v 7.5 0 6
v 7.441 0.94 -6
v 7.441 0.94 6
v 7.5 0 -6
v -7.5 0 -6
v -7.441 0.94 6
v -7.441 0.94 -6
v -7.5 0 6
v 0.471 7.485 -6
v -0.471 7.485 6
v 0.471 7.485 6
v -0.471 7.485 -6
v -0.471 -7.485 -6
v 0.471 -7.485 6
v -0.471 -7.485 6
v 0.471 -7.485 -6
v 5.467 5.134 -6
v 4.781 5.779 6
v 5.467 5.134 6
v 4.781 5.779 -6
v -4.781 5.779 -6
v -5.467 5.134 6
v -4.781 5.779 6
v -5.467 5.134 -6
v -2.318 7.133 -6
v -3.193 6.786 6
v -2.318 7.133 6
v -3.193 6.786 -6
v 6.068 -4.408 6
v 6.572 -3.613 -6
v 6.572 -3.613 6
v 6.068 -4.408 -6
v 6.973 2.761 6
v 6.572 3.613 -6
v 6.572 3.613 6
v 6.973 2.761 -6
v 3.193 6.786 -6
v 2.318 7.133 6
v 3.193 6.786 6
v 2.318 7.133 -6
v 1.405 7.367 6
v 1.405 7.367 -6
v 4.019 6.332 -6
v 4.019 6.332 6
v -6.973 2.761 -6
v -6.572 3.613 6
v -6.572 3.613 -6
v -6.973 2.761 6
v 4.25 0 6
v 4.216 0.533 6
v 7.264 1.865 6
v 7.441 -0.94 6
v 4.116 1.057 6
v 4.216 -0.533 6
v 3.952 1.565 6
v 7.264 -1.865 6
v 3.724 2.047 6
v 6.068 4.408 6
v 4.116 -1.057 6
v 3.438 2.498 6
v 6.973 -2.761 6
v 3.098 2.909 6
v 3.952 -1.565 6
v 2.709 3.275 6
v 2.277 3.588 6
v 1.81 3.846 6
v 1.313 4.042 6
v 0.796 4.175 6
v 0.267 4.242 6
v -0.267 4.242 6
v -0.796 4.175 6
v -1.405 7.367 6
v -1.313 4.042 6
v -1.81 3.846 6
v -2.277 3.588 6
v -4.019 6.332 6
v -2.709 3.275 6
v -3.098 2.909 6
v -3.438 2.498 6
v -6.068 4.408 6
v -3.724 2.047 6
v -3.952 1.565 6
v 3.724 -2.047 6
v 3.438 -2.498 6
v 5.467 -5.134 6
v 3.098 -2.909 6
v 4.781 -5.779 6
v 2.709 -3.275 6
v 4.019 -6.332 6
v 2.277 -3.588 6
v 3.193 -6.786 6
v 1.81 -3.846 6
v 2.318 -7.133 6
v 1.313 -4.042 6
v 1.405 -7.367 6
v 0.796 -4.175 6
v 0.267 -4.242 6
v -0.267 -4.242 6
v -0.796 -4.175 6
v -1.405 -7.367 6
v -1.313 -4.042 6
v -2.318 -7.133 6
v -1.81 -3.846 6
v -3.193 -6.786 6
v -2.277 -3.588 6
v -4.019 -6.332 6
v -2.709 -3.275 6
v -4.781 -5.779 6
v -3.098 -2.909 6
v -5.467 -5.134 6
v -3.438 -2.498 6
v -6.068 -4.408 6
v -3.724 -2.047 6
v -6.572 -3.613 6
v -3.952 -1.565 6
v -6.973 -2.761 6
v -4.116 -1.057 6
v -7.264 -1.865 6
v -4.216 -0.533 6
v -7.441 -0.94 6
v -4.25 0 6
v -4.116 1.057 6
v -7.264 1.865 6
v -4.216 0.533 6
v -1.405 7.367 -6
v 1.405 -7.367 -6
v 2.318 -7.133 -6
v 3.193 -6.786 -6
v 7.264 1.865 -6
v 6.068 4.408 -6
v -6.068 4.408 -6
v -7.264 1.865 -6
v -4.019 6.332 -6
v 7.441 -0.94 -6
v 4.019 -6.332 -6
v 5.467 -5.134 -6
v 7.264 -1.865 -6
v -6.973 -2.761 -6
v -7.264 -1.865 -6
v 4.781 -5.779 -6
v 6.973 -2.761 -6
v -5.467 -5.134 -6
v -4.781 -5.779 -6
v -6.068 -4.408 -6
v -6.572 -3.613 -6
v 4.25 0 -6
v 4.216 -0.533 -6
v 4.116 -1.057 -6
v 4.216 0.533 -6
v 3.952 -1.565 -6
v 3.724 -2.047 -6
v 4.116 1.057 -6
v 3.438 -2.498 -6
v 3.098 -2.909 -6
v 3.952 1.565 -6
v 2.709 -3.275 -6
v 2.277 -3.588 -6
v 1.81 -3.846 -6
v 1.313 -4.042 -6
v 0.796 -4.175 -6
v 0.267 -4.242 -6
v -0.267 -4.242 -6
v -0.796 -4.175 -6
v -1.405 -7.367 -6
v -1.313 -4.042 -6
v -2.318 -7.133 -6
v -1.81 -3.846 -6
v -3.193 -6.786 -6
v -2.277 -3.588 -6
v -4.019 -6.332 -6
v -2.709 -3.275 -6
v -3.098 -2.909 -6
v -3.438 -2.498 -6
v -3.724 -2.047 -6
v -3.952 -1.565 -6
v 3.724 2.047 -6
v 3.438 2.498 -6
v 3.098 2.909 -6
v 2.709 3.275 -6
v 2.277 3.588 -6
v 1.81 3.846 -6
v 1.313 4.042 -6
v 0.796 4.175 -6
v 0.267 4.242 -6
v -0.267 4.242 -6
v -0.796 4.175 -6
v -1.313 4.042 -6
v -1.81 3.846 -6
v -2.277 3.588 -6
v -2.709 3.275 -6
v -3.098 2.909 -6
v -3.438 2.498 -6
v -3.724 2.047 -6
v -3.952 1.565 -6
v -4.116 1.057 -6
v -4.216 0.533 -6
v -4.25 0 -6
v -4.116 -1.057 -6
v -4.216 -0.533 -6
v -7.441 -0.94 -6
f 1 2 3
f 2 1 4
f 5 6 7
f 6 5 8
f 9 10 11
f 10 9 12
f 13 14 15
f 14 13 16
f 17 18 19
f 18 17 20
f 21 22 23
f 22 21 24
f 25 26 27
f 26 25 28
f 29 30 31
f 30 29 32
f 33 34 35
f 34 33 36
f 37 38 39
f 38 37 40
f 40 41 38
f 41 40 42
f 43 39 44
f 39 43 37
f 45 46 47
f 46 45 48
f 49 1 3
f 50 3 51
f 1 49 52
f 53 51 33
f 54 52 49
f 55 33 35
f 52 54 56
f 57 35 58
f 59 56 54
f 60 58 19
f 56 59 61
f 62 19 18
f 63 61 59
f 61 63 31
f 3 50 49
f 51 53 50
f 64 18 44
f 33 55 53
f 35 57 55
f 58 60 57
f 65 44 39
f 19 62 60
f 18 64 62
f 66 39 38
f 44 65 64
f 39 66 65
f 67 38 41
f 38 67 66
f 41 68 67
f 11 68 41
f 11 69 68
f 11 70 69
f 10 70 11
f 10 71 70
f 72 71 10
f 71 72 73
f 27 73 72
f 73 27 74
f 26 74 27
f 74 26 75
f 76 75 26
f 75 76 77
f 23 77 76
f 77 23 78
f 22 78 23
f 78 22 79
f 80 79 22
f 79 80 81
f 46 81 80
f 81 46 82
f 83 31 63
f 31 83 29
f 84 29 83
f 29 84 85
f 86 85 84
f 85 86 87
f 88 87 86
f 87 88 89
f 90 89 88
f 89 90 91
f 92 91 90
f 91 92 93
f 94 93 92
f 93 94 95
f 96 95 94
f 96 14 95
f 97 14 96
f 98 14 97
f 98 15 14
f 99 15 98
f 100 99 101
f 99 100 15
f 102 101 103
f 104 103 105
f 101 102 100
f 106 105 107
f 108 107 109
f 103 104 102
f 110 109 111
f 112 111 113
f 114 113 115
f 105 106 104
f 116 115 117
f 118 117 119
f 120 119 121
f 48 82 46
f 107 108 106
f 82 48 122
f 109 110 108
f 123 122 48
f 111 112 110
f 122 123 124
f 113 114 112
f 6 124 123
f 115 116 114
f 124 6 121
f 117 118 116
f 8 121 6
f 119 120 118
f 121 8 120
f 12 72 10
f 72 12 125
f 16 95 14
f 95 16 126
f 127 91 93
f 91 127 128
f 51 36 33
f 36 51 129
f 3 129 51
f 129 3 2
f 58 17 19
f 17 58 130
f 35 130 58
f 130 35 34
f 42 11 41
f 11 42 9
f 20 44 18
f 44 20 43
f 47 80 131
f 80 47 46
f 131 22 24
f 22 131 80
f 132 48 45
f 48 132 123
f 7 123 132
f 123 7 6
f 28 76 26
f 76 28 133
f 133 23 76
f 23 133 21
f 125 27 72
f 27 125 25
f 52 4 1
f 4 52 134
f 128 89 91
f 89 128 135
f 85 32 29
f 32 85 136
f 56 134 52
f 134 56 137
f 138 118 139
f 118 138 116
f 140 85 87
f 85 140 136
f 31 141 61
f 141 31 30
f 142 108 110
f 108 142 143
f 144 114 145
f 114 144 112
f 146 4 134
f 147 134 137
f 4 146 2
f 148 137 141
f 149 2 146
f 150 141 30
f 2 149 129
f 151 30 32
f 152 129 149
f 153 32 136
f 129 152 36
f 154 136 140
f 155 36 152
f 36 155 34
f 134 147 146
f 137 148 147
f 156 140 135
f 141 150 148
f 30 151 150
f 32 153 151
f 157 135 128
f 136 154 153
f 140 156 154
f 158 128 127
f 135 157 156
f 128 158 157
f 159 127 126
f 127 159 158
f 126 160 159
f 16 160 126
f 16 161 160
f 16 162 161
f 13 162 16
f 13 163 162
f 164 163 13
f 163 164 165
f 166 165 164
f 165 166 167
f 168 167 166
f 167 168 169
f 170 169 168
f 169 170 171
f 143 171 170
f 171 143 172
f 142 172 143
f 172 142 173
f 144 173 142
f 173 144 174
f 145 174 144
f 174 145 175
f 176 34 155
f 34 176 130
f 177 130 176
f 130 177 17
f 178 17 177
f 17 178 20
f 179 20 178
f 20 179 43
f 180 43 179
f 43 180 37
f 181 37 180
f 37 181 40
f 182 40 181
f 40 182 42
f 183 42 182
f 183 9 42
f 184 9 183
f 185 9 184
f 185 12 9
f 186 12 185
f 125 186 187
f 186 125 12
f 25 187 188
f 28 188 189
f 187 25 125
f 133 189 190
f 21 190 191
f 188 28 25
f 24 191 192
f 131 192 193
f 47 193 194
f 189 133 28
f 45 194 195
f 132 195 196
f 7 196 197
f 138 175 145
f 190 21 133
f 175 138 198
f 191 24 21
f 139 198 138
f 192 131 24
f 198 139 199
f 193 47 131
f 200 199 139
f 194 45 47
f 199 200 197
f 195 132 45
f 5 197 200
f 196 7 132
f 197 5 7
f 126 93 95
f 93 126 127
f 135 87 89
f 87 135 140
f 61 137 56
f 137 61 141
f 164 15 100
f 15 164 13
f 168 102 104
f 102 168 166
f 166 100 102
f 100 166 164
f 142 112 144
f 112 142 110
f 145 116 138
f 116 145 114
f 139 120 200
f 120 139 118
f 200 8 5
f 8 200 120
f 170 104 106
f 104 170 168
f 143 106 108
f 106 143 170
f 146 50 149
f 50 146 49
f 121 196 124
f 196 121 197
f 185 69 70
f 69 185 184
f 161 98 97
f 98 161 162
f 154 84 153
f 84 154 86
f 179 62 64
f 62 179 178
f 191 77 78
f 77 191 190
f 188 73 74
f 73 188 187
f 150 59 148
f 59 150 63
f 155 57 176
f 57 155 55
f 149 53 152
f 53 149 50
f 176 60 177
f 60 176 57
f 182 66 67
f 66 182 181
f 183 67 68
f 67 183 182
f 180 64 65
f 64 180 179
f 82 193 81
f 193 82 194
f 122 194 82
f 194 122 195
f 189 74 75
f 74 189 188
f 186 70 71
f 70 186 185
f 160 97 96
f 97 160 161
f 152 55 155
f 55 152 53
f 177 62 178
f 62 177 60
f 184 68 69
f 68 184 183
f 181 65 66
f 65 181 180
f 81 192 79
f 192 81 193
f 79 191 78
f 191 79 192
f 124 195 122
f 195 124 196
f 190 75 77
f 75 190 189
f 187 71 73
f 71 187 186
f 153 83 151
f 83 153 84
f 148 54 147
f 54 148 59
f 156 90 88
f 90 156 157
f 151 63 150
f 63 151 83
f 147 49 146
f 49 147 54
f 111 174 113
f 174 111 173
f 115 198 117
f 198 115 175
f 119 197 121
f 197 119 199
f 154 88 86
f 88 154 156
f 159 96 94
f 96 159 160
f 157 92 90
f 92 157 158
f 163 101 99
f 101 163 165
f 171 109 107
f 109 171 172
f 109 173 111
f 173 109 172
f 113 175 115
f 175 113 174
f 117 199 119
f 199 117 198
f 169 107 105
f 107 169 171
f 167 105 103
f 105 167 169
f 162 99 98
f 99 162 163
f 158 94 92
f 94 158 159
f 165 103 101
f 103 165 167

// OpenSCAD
$fn = 50;


difference() {
	union() {
		translate(v = [0, 0, -6.0000000000]) {
			cylinder(h = 12, r = 7.5000000000);
		}
	}
	union() {
		translate(v = [0, 0, -100.0000000000]) {
			cylinder(h = 200, r = 4.2500000000);
		}
	}
}
